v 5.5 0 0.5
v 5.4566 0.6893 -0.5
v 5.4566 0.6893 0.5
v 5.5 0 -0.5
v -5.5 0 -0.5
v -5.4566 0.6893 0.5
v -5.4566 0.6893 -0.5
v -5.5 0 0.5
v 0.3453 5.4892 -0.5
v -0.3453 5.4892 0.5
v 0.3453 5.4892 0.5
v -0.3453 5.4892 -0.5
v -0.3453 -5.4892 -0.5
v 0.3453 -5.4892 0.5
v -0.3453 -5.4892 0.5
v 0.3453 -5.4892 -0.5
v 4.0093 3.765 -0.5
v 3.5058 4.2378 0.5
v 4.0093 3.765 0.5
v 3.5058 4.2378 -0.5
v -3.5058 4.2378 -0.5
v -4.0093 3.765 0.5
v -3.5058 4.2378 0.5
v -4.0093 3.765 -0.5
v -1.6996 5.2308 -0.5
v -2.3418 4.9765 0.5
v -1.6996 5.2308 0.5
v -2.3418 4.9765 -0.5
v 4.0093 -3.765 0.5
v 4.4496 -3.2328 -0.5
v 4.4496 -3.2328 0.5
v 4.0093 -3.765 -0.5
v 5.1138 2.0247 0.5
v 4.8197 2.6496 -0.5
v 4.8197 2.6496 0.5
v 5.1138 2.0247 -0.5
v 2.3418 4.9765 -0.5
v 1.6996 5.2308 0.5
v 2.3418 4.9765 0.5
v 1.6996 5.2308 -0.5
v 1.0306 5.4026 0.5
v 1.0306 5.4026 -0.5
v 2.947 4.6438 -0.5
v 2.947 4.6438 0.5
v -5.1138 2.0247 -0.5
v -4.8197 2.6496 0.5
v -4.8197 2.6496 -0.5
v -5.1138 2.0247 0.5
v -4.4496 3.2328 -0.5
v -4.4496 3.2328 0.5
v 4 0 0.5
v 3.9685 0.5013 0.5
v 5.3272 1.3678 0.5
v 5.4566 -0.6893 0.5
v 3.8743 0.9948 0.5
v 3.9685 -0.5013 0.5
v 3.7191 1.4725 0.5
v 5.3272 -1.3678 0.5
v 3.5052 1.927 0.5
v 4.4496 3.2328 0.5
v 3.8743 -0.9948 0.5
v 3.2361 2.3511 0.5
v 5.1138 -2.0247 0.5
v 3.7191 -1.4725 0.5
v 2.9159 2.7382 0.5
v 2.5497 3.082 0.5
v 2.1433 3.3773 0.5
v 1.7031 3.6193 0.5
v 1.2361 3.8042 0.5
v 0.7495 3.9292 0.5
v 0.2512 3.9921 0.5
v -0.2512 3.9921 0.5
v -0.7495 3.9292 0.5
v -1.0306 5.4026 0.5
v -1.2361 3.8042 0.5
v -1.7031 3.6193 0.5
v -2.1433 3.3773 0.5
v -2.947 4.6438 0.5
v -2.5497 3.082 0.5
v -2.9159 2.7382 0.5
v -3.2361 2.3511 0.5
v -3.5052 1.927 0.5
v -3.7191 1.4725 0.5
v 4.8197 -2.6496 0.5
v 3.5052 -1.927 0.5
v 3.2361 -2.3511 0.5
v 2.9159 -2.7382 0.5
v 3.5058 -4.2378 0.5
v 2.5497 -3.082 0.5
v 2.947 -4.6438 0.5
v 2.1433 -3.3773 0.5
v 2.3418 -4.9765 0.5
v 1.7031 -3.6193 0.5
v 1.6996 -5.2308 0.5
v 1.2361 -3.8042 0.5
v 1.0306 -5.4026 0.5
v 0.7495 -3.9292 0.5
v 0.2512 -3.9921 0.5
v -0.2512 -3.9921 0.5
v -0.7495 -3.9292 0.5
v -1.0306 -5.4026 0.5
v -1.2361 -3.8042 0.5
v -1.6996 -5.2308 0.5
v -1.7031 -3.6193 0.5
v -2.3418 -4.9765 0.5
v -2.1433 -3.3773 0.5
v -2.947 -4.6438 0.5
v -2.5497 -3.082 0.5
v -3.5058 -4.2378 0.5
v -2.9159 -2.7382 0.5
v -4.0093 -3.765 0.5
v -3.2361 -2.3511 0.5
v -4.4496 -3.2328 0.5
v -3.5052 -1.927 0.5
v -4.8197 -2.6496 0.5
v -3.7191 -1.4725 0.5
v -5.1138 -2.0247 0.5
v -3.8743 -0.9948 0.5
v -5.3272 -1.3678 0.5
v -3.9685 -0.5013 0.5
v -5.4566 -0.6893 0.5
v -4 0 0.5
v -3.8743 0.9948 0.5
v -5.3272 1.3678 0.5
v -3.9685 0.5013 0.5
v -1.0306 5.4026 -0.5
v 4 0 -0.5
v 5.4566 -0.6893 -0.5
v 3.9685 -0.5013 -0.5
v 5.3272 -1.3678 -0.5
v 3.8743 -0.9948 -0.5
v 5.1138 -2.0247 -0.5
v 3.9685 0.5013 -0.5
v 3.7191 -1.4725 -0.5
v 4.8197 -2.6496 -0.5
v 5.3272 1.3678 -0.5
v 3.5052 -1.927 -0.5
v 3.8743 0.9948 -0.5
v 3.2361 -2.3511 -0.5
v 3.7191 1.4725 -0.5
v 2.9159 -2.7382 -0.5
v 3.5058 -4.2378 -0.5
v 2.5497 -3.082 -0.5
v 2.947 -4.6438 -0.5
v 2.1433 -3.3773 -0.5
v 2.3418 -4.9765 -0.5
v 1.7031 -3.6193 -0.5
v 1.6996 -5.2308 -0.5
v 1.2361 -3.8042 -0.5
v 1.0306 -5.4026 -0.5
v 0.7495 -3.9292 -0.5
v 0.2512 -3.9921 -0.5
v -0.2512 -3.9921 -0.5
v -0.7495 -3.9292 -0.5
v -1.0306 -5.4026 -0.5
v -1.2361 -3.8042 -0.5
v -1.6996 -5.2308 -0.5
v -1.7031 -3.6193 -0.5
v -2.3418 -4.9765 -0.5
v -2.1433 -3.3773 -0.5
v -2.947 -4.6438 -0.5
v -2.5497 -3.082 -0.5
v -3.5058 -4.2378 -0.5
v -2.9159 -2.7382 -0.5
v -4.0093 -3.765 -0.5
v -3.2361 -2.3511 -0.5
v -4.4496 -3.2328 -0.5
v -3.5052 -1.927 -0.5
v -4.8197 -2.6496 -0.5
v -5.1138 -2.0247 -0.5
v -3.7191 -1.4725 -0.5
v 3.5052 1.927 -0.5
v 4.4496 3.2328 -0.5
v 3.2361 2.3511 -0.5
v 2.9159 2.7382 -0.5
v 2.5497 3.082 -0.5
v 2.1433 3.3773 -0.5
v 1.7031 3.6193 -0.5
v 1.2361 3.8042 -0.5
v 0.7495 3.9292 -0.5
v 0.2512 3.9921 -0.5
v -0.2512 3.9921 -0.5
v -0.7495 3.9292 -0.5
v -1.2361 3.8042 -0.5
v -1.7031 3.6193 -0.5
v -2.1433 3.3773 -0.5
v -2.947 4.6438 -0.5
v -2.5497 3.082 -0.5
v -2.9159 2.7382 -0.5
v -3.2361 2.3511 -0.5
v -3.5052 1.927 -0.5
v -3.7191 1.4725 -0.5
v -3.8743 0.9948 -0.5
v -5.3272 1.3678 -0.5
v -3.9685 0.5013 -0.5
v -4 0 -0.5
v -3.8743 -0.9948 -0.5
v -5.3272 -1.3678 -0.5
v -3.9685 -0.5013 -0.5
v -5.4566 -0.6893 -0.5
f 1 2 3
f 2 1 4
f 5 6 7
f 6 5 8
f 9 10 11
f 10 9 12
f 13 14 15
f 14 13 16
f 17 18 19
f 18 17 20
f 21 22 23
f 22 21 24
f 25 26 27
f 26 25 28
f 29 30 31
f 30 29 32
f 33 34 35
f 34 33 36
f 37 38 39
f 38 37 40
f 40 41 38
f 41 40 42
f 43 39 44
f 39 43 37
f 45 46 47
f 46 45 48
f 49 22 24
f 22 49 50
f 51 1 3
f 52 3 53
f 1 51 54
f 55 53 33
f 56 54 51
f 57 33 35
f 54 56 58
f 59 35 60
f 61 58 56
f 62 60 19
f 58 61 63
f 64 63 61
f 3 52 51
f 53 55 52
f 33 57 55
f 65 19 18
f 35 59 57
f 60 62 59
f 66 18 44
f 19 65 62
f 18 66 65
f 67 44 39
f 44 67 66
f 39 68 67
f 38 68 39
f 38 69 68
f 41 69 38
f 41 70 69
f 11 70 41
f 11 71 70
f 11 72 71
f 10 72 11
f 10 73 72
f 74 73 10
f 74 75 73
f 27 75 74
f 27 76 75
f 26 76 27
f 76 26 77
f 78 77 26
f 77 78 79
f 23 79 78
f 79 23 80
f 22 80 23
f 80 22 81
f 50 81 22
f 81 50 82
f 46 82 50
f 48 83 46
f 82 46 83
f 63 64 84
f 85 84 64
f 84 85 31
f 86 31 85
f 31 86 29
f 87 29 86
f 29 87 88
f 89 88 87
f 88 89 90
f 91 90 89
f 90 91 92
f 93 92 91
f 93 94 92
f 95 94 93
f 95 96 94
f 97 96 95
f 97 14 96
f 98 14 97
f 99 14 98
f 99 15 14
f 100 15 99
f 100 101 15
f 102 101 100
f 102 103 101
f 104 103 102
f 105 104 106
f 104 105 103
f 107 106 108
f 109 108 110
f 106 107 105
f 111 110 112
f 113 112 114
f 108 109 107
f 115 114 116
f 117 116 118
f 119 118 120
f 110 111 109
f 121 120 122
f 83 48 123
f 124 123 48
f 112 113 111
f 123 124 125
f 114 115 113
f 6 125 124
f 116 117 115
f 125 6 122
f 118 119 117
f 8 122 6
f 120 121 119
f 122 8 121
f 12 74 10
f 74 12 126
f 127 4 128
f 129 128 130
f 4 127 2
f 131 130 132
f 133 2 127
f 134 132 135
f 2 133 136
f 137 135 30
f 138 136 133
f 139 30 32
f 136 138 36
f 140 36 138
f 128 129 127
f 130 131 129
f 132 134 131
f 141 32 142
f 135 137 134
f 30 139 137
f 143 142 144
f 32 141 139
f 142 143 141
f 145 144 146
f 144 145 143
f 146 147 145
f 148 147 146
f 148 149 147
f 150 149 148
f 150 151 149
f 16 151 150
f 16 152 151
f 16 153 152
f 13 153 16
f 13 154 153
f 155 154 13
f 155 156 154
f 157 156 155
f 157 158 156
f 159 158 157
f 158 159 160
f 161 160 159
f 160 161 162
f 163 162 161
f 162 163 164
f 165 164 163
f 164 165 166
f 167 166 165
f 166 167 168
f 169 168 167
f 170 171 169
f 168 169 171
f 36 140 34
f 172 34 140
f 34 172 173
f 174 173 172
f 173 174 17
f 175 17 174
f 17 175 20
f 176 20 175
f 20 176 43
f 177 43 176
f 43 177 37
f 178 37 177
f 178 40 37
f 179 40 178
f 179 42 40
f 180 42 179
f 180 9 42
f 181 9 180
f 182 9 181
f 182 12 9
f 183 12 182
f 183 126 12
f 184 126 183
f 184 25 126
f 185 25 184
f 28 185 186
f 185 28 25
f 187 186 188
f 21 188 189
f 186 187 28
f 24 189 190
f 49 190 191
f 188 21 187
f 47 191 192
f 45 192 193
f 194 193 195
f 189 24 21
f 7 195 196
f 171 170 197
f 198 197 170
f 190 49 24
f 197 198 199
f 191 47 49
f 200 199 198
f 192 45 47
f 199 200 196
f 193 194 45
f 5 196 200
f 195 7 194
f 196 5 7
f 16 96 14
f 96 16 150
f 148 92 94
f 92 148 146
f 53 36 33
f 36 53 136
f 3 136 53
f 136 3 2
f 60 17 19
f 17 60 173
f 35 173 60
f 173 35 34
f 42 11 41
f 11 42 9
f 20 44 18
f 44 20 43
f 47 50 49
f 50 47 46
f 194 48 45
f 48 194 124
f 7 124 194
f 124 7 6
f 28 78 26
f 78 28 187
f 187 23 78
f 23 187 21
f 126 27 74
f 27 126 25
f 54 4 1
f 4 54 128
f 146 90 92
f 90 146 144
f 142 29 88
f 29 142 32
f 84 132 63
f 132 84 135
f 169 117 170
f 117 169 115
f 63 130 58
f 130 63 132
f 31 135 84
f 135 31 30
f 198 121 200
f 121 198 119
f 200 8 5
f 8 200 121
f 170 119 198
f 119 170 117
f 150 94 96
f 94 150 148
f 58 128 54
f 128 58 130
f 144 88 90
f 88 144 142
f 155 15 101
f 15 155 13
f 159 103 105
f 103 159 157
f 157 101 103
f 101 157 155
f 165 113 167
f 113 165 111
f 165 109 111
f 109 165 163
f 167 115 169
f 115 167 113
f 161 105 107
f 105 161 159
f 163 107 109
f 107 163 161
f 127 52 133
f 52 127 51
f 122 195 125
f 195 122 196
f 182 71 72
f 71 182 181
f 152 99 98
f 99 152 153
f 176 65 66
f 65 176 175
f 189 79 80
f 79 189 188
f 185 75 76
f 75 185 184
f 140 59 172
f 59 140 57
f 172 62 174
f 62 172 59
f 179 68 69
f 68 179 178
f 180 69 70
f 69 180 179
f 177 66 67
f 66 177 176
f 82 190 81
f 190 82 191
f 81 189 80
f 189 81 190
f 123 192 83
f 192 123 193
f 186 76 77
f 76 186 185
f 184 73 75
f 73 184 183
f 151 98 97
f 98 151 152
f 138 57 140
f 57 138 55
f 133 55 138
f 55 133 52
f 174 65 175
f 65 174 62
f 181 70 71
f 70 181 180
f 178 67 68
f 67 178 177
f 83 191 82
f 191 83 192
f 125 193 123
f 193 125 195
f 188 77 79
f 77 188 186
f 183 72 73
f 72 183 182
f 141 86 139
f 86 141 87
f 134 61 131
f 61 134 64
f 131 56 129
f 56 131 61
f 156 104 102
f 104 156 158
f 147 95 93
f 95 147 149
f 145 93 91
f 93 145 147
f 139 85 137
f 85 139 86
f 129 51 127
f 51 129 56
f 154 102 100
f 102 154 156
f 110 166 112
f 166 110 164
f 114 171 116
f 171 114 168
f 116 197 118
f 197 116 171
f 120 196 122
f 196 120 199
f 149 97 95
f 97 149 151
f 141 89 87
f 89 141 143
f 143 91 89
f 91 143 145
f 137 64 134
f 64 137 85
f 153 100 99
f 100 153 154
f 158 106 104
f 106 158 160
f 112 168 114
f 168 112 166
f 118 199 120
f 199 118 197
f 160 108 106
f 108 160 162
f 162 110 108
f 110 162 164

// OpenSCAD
$fn = 50;


difference() {
	union() {
		translate(v = [0, 0, -0.5000000000]) {
			cylinder(h = 1, r = 5.5000000000);
		}
	}
	union() {
		translate(v = [0, 0, -100.0000000000]) {
			cylinder(h = 200, r = 4.0000000000);
		}
	}
}
